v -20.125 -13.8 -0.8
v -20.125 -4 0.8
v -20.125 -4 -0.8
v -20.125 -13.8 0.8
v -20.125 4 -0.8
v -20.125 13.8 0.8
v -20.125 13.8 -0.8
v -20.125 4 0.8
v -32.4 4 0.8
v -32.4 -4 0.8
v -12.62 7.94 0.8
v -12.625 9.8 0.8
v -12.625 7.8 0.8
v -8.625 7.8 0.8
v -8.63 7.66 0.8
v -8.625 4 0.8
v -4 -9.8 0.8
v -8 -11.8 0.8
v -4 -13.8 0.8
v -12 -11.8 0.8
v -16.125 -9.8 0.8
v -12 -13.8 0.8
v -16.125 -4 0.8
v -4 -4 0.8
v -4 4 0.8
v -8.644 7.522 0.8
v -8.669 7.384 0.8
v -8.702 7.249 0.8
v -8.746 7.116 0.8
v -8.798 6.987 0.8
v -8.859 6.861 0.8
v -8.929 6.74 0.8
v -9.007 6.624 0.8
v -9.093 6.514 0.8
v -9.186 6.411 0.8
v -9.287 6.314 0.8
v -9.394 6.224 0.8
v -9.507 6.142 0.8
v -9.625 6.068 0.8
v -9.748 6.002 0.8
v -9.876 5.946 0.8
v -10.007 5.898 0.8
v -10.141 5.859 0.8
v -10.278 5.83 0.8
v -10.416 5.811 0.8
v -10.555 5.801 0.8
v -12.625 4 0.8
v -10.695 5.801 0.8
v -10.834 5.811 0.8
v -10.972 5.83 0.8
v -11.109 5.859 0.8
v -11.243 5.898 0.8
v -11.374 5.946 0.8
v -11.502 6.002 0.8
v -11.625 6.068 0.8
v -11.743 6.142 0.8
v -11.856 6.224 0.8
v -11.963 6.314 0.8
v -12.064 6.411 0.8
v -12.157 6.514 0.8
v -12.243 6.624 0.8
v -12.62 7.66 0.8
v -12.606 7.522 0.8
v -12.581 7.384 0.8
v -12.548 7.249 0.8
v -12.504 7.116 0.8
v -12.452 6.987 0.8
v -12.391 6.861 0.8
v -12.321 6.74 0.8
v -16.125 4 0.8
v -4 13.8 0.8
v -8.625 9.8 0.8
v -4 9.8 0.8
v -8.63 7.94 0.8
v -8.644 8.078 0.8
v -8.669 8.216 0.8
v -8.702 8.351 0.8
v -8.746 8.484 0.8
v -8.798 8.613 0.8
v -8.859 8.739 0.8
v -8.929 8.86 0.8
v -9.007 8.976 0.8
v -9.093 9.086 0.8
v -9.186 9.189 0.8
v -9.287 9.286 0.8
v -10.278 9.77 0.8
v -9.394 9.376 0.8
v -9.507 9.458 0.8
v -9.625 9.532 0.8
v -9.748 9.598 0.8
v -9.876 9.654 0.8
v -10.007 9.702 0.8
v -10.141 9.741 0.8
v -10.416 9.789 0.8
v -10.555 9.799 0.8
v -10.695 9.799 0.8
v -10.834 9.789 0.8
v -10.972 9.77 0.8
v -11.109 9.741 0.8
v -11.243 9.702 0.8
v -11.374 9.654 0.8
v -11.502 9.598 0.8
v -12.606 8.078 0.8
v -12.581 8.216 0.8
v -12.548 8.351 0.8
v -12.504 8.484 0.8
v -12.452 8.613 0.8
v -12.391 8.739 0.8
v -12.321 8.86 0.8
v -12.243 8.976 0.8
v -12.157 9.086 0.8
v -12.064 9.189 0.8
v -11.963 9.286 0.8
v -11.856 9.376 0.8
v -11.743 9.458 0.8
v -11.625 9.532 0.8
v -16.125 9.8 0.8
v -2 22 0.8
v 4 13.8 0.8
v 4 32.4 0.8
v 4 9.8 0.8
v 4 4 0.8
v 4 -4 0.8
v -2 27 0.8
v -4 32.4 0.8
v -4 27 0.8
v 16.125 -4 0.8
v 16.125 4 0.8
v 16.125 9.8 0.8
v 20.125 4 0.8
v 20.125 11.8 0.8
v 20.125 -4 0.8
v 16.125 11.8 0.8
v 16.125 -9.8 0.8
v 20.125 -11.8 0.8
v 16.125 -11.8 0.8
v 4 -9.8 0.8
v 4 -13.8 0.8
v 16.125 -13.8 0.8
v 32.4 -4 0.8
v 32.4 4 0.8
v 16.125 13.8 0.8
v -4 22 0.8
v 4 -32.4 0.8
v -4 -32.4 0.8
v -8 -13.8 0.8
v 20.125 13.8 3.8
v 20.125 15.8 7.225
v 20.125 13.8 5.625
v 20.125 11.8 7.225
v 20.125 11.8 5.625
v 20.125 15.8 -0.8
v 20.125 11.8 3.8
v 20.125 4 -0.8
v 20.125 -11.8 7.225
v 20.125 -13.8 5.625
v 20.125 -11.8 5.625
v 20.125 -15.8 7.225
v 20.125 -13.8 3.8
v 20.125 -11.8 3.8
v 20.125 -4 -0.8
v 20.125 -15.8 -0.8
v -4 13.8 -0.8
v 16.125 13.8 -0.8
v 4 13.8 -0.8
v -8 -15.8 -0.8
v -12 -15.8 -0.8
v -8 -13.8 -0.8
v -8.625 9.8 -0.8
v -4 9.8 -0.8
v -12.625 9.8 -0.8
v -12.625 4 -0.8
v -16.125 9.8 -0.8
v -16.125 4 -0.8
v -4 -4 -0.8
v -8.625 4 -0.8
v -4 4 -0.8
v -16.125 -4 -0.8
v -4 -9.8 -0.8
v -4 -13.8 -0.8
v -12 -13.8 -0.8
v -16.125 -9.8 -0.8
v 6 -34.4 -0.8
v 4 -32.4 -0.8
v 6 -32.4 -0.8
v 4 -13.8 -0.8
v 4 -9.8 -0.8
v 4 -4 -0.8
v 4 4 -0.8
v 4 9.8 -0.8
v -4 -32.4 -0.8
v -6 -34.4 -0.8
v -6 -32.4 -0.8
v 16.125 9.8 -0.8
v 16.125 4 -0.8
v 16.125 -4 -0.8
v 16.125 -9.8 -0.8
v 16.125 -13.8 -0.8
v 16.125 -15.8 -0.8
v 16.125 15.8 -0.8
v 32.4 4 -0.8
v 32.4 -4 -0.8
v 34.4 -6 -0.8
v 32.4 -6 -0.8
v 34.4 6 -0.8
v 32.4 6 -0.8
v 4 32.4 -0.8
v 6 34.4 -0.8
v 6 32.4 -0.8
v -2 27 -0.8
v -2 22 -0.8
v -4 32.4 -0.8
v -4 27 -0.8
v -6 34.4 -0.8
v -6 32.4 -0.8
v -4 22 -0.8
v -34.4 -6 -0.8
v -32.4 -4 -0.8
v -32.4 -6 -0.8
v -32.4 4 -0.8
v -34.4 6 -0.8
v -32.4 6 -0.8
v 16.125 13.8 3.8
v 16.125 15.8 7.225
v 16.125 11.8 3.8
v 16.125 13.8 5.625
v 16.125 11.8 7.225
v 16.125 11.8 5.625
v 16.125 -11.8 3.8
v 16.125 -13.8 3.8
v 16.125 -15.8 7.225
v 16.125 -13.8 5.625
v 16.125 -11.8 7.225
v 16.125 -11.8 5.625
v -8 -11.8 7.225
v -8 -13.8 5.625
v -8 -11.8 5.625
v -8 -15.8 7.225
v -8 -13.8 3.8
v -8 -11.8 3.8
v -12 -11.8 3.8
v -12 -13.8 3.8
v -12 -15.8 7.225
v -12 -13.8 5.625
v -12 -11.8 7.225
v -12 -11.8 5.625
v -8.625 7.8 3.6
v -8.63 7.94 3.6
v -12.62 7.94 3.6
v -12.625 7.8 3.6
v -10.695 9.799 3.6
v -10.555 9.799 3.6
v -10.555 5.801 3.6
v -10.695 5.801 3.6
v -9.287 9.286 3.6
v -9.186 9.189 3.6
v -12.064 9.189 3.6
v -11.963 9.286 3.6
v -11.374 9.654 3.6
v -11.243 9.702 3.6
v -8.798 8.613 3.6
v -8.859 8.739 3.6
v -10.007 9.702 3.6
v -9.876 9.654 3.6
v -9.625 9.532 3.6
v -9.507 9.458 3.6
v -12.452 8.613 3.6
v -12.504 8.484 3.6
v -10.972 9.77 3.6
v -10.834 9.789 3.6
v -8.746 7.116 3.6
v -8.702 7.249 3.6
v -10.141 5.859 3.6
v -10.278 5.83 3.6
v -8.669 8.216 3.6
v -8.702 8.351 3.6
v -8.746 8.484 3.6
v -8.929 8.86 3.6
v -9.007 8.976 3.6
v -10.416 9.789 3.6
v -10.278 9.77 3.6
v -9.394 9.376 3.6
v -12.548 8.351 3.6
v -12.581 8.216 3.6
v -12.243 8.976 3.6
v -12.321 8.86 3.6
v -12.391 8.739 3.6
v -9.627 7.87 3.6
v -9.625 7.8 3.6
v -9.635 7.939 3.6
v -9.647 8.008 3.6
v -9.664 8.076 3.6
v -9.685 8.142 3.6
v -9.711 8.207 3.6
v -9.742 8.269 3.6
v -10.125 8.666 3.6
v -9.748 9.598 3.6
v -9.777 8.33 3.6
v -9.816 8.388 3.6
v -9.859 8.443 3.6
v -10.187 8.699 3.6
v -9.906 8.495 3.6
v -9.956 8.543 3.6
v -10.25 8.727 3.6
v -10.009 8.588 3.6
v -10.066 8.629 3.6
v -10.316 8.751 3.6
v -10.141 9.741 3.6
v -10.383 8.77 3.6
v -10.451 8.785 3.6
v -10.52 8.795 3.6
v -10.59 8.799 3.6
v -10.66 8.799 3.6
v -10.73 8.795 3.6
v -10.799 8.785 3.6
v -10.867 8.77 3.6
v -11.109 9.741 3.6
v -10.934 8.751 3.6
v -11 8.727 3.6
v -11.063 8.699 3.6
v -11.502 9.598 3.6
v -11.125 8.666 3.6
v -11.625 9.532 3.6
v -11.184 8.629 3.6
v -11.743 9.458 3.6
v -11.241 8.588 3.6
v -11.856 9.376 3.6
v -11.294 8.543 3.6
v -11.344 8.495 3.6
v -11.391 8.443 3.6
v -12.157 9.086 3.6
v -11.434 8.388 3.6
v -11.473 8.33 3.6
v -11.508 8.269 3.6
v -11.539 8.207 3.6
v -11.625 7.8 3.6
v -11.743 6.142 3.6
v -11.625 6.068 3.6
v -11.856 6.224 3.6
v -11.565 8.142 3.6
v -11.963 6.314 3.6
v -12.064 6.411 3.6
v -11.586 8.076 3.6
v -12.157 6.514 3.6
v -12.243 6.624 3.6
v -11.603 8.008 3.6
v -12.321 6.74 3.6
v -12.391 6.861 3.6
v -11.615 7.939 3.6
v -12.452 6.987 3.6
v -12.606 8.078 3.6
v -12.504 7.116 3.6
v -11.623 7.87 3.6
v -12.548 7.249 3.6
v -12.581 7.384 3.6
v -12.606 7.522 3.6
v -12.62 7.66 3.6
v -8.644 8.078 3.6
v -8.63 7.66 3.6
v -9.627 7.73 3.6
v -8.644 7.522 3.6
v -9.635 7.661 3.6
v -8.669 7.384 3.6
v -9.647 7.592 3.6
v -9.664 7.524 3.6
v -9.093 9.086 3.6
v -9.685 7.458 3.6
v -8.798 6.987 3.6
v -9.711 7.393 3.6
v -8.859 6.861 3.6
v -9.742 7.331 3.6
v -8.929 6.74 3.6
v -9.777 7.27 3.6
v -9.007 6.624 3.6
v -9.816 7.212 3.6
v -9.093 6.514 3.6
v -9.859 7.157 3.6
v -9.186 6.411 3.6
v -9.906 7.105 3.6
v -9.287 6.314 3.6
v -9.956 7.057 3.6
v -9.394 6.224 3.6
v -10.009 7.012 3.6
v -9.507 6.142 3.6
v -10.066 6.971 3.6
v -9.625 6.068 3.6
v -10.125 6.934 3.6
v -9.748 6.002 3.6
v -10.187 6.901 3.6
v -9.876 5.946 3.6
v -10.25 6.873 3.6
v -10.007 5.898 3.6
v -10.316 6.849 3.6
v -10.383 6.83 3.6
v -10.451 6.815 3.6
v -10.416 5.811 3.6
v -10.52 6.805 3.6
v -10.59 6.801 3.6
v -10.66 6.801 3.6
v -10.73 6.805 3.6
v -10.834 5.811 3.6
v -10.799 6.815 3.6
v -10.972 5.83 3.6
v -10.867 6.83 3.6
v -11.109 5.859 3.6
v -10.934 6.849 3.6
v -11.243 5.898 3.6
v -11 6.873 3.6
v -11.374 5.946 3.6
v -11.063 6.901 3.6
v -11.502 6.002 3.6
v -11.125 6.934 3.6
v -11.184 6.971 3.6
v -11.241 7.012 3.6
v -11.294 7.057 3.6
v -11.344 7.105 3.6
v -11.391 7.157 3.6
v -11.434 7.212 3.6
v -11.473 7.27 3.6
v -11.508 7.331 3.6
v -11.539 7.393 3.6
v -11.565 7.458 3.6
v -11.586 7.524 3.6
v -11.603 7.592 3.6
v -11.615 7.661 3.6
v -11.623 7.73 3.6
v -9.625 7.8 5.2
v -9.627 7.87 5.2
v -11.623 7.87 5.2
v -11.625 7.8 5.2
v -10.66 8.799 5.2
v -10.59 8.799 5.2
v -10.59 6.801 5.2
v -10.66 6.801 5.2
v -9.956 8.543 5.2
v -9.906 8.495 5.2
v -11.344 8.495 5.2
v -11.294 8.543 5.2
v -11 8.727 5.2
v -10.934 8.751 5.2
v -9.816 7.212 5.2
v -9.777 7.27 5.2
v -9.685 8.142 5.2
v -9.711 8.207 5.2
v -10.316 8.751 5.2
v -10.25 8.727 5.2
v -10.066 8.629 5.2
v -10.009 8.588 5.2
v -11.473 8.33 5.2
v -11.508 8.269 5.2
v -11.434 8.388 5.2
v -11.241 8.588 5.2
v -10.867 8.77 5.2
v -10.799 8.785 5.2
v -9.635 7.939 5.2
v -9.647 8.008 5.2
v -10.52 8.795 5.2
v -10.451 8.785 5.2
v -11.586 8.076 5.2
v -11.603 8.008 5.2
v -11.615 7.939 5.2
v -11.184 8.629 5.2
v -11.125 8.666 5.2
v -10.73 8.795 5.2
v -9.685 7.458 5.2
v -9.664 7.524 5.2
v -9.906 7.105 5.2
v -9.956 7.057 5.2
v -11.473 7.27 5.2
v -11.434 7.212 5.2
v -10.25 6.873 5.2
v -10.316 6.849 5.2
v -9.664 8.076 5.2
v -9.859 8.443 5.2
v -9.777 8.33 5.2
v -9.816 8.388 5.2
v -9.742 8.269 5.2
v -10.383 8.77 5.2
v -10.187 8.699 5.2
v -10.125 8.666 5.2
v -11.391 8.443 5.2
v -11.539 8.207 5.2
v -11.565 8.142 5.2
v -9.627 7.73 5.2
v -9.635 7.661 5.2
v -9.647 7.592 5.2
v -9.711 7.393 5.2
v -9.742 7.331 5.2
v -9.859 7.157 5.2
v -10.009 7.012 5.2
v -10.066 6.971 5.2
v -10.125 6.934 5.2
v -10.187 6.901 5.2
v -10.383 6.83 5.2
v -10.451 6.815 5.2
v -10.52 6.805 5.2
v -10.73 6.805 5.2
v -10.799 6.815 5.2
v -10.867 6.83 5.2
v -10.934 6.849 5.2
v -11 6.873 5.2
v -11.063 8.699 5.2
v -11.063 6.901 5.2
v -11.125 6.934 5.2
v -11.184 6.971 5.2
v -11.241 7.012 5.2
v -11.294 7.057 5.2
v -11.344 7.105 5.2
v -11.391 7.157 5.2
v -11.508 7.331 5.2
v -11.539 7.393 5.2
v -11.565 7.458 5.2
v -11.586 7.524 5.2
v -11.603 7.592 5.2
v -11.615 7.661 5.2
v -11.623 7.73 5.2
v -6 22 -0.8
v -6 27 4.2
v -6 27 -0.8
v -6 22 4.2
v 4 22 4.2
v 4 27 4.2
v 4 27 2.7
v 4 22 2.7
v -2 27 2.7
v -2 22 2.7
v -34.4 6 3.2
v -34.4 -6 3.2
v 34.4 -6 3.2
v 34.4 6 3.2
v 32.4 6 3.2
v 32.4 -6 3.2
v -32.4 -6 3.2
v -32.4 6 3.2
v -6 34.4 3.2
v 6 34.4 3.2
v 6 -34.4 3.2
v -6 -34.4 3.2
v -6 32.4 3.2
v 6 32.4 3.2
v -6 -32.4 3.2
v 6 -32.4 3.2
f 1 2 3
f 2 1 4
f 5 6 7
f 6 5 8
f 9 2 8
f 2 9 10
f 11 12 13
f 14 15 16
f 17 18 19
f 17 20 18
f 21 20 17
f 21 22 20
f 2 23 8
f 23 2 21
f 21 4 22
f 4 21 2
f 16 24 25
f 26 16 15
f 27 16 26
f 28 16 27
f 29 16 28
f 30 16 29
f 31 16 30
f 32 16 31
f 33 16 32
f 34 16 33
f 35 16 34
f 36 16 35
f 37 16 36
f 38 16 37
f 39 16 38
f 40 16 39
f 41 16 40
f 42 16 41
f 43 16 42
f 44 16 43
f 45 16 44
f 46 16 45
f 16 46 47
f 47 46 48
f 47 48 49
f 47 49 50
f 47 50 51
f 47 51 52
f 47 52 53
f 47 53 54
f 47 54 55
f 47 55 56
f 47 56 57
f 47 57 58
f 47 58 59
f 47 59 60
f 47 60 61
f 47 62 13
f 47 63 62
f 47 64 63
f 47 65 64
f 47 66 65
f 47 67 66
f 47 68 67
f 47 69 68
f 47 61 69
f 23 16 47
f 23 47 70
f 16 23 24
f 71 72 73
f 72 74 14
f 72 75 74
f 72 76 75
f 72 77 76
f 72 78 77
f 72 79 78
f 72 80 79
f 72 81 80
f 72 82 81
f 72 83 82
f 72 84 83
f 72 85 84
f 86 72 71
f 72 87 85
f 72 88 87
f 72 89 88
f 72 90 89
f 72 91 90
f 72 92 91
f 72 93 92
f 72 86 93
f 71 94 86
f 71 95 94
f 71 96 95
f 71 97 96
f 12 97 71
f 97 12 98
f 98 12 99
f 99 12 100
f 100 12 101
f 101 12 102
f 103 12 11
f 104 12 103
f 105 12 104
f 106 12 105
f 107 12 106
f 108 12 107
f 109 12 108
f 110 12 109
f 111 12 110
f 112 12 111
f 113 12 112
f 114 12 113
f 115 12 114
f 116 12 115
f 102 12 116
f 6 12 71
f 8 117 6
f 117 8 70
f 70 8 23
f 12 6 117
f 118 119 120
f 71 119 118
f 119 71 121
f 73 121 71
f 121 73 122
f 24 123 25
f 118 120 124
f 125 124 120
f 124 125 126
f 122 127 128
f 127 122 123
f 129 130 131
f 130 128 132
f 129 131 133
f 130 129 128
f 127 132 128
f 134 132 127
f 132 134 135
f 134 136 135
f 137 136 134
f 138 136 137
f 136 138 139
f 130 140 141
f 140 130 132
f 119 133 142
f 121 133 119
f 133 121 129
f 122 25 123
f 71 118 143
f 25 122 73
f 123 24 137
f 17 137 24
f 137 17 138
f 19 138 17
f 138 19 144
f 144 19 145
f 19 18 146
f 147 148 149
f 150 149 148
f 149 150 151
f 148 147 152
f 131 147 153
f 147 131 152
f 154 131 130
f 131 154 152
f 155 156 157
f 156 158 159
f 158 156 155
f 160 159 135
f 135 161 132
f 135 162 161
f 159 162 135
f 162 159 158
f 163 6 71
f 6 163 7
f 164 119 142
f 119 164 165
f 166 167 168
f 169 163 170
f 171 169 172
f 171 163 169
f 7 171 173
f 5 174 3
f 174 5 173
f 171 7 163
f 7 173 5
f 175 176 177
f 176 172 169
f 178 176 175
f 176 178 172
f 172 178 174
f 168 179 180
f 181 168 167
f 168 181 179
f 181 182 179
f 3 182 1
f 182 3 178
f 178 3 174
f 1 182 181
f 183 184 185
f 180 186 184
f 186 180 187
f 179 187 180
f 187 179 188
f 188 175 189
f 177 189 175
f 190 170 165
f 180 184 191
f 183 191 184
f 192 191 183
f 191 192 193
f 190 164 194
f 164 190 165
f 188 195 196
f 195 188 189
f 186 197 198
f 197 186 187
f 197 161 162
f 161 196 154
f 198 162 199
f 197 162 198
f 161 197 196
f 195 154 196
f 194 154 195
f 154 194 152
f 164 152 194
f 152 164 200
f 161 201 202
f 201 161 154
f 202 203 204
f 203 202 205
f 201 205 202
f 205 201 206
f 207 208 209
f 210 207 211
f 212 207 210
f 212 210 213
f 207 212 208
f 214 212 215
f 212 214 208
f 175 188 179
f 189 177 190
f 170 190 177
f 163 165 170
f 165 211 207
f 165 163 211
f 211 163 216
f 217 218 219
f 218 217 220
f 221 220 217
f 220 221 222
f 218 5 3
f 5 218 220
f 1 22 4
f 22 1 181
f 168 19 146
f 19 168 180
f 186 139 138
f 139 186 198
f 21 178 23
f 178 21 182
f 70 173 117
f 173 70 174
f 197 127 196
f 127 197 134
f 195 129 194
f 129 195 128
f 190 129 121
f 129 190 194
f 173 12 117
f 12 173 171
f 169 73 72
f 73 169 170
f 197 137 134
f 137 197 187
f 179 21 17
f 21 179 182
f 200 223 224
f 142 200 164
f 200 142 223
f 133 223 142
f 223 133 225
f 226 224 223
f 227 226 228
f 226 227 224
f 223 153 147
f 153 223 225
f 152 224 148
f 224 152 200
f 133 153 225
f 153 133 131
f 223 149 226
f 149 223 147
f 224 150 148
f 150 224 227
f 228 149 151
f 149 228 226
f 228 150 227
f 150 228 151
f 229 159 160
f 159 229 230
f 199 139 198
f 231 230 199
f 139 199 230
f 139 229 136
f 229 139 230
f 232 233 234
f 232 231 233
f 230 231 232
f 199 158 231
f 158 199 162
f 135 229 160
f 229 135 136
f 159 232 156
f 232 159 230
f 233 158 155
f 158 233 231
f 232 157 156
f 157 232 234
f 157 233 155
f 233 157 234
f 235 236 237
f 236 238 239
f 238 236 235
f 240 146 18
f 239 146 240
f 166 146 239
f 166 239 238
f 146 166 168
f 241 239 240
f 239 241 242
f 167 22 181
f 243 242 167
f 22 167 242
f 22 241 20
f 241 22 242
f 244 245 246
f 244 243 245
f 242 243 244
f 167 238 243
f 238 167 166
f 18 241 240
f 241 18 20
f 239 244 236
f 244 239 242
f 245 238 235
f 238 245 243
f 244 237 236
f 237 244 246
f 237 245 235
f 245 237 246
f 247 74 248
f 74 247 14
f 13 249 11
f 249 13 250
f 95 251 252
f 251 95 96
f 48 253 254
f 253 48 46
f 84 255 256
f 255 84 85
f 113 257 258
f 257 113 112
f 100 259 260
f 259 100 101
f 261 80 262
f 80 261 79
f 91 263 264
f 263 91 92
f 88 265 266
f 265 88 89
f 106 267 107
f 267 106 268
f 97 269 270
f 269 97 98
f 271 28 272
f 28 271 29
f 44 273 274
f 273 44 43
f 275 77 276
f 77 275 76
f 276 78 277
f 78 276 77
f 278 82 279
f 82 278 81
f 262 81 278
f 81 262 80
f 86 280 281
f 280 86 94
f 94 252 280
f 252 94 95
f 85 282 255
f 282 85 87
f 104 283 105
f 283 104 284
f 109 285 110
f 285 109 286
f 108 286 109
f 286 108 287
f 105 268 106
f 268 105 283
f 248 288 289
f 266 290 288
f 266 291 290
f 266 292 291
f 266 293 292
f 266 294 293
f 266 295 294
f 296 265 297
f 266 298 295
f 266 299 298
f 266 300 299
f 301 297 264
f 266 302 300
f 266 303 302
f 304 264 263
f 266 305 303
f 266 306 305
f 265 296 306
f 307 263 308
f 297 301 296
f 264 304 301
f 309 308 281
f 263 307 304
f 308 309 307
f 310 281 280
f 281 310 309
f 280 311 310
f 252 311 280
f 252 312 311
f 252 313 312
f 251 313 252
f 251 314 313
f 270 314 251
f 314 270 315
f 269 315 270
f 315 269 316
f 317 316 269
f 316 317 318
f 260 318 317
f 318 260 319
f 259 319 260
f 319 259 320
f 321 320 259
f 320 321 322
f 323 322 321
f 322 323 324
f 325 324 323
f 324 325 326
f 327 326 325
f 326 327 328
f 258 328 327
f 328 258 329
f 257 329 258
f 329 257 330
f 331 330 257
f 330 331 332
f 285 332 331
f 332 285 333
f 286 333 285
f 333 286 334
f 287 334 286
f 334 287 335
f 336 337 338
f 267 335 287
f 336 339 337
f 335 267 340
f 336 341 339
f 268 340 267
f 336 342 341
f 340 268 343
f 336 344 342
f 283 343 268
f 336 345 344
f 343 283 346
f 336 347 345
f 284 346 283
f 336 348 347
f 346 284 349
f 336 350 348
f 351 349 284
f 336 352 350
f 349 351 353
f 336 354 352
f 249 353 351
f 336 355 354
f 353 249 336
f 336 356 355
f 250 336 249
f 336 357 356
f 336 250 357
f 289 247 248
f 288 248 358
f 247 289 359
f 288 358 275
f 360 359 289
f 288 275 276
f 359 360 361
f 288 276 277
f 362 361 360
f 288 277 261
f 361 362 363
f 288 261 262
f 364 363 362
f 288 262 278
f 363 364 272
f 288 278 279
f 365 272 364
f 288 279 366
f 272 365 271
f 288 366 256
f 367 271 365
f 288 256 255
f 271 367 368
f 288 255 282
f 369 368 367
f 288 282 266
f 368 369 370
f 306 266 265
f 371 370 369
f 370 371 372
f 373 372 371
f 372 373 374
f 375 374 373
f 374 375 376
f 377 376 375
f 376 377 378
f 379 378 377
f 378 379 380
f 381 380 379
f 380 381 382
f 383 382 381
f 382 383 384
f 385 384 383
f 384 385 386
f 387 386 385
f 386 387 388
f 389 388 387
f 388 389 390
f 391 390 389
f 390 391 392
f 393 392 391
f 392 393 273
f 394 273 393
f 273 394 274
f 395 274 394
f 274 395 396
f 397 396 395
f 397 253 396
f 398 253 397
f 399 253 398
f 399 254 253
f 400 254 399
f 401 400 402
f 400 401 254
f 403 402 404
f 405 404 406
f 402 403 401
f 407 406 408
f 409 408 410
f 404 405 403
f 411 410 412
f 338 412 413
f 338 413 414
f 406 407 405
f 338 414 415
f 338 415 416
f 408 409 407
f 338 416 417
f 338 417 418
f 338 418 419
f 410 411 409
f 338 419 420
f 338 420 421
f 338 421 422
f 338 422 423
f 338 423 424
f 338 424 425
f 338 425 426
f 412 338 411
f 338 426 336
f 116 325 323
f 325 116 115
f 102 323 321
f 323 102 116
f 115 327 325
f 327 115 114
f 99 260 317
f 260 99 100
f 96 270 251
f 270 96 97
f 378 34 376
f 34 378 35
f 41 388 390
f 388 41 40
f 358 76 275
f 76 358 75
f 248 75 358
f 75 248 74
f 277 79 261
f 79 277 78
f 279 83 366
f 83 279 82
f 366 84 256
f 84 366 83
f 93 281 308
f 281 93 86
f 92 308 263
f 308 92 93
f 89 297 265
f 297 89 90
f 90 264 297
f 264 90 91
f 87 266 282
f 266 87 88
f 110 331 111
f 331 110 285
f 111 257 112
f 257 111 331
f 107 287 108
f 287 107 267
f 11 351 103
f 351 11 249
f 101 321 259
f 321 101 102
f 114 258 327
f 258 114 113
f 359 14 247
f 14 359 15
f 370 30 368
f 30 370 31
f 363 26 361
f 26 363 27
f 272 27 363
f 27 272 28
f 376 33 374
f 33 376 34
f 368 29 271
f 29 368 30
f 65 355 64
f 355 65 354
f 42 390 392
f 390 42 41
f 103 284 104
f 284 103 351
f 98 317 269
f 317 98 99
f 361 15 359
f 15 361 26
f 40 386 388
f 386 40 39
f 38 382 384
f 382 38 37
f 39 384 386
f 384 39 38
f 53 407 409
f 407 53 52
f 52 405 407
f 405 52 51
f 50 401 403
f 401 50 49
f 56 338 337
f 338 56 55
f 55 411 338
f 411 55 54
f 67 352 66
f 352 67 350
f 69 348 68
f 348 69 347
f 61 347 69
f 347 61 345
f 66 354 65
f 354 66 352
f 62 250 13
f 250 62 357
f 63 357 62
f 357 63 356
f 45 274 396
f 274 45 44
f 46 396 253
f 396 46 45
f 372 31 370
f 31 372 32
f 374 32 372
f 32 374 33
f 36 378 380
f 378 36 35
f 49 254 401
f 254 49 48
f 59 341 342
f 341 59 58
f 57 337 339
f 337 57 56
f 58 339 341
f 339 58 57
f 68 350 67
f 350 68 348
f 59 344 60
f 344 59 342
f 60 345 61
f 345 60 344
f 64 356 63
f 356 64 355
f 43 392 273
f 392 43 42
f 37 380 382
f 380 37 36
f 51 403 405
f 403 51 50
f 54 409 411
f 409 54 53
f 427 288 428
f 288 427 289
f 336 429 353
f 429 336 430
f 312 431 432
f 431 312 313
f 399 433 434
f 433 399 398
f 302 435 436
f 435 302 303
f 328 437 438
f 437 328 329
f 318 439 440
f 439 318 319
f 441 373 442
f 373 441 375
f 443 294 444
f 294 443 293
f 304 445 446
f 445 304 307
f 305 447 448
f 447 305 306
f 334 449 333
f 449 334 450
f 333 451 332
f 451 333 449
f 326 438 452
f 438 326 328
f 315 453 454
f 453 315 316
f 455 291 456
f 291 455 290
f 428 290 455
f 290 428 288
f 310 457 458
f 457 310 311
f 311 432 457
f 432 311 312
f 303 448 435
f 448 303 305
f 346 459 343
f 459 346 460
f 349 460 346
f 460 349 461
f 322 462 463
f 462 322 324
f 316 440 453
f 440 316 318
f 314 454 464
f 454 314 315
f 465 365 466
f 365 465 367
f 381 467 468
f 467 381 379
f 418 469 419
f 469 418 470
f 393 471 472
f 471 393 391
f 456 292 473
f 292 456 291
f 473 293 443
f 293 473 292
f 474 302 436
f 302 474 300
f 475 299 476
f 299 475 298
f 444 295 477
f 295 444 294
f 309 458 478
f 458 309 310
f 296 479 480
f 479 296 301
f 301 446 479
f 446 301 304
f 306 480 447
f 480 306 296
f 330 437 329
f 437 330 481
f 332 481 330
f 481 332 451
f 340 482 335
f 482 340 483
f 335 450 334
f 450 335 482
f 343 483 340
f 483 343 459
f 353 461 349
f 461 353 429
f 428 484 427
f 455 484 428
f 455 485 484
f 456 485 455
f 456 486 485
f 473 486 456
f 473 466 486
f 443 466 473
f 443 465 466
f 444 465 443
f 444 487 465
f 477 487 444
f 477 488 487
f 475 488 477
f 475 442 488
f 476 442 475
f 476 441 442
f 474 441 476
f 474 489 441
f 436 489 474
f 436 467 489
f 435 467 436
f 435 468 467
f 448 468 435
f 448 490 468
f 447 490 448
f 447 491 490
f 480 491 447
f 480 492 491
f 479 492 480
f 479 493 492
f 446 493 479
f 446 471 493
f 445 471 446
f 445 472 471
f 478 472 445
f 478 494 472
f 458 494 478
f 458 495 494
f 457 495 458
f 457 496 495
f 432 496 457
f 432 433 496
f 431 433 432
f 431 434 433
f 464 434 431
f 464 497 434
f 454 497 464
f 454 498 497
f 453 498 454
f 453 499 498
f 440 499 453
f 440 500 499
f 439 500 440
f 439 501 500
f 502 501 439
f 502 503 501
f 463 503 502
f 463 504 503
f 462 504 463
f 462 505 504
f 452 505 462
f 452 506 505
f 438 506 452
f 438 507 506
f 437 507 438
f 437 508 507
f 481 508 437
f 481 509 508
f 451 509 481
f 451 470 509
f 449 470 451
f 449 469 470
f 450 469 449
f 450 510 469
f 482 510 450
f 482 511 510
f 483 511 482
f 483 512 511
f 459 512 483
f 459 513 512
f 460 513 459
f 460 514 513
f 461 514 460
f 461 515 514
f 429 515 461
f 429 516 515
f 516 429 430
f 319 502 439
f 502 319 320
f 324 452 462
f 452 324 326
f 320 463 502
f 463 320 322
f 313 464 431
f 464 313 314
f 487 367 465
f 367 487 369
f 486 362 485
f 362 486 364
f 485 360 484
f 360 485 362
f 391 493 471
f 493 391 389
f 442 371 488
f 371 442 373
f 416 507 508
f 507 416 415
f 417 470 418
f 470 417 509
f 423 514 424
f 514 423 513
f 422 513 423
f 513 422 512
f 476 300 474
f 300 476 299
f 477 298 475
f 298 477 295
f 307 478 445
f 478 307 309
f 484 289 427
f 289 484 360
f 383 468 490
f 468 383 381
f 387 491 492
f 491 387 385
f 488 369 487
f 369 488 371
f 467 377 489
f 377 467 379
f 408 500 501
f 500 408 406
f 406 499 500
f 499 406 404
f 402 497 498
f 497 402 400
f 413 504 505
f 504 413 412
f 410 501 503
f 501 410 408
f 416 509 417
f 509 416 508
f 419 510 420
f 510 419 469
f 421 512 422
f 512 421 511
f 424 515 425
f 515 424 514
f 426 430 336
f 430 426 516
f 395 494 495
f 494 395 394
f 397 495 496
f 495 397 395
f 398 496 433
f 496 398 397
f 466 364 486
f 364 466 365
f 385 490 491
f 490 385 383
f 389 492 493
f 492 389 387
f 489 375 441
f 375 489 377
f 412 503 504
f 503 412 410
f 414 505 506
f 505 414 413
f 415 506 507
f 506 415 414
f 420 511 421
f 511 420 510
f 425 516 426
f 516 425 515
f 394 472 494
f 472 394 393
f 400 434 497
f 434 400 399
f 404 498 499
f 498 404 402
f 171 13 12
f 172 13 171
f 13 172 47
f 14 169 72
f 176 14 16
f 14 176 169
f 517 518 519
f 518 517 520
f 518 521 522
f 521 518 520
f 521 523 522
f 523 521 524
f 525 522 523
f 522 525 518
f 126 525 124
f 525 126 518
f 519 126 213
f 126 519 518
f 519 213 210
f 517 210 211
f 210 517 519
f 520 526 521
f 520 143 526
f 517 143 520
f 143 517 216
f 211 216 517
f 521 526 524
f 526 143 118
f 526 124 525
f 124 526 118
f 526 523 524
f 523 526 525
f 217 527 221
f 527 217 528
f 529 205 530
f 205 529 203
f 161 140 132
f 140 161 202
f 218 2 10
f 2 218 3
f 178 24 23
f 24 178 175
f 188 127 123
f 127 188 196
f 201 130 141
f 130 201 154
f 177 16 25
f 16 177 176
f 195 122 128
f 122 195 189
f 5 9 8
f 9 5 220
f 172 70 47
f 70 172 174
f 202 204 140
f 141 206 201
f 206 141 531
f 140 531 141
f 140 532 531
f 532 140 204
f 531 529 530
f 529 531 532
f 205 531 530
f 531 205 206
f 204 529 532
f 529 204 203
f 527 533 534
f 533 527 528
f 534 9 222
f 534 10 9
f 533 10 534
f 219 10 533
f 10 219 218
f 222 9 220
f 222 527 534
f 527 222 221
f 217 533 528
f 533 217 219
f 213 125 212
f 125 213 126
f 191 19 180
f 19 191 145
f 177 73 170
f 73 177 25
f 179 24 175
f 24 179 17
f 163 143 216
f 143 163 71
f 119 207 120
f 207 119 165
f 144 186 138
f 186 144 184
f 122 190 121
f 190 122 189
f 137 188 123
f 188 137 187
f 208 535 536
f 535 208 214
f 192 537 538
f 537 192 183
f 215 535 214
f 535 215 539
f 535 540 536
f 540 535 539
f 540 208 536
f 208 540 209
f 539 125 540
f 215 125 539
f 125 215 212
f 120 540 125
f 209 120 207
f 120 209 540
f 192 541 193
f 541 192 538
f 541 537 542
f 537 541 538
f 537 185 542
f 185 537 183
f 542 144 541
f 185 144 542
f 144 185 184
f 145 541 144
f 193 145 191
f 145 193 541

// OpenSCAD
/*
 *  Pixelblaze holder and 8x8 LED mount
 *
 *  The pcb_mount_v2() function fits the Pixelblaze V2 board
 *  and should also fit V3 (but I don't have one yet to test).
 *
 *  The mount could be used as a component in other projects.
 *
 *  TODO: Add Pixelblaze Pico PCB mount.
 */

led_full_side = 8.5;  // dimension of one LED cube on 8x8 matrix
side = 8 * led_full_side + 0.8;

width = 8;
th = 1.6;

h_side = 4;
module holder() {
    pcb_th = 5.25;
    h_off = 3;

    cube([h_side, h_side, th + h_off], true);
    translate([0, h_side/4, (th+h_off)/2]) {
        cube([h_side, h_side/2, pcb_th], true);
    }
    translate([0, 0, (th+pcb_th+h_off)/2]) {
        cube([h_side, h_side, th], true);
    }
}

/*
 *  Standoff holder for PCB
 */
module pcb_mount_v2() {
    pcb_len = 40.25;
    pcb_wid = 27.5 + 0.1;

    difference() {
        cube([pcb_len, pcb_wid, th], true);
        cube([pcb_len-8, pcb_wid-8, th], true);
    }
    translate([(pcb_len-h_side)/2, pcb_wid/2, 3/2]) {
        holder();
    }
    translate([(pcb_len-h_side)/2, -pcb_wid/2, 3/2]) {
        rotate([0, 0, 180]) {
            holder();
        }
    }
    translate([-10, -pcb_wid/2, 3/2]) {
        rotate([0, 0, 180]) {
            holder();
        }
    }
    translate([-((40.25/2)-9.5), (pcb_wid/2-6), 0]) {
        cylinder(r=2, h=3.6, $fn=90);
        cylinder(r=1, h=3.6+1.6, $fn=90);
        cube([4, 8, th], true);
    }
}

module box_frame() {
    soh = 4;
    sow = 2;

    cube([side, width, th], true);
    translate([(side-sow)/2, 0, (soh-th)/2]) {
        cube([sow, width+4, soh], true);
    }
    translate([-(side-sow)/2, 0, (soh-th)/2]) {
        cube([sow, width+4, soh], true);
    }

    cube([width, side, th], true);
    translate([0, (side-sow)/2, (soh-th)/2]) {
        cube([width+4, sow, soh], true);
    }
    translate([0, -(side-sow)/2, (soh-th)/2]) {
        cube([width+4, sow, soh], true);
    }

    // wire clip
    translate([-6, 22, -th/2]) {
        difference() {
            cube([10, 5, 5]);
            translate([4, 0, 0]) {
                cube([6, 5, 3.5]);
            }
        }
    }

    pcb_mount_v2();
}

// pcb_mount_v2();
box_frame();
